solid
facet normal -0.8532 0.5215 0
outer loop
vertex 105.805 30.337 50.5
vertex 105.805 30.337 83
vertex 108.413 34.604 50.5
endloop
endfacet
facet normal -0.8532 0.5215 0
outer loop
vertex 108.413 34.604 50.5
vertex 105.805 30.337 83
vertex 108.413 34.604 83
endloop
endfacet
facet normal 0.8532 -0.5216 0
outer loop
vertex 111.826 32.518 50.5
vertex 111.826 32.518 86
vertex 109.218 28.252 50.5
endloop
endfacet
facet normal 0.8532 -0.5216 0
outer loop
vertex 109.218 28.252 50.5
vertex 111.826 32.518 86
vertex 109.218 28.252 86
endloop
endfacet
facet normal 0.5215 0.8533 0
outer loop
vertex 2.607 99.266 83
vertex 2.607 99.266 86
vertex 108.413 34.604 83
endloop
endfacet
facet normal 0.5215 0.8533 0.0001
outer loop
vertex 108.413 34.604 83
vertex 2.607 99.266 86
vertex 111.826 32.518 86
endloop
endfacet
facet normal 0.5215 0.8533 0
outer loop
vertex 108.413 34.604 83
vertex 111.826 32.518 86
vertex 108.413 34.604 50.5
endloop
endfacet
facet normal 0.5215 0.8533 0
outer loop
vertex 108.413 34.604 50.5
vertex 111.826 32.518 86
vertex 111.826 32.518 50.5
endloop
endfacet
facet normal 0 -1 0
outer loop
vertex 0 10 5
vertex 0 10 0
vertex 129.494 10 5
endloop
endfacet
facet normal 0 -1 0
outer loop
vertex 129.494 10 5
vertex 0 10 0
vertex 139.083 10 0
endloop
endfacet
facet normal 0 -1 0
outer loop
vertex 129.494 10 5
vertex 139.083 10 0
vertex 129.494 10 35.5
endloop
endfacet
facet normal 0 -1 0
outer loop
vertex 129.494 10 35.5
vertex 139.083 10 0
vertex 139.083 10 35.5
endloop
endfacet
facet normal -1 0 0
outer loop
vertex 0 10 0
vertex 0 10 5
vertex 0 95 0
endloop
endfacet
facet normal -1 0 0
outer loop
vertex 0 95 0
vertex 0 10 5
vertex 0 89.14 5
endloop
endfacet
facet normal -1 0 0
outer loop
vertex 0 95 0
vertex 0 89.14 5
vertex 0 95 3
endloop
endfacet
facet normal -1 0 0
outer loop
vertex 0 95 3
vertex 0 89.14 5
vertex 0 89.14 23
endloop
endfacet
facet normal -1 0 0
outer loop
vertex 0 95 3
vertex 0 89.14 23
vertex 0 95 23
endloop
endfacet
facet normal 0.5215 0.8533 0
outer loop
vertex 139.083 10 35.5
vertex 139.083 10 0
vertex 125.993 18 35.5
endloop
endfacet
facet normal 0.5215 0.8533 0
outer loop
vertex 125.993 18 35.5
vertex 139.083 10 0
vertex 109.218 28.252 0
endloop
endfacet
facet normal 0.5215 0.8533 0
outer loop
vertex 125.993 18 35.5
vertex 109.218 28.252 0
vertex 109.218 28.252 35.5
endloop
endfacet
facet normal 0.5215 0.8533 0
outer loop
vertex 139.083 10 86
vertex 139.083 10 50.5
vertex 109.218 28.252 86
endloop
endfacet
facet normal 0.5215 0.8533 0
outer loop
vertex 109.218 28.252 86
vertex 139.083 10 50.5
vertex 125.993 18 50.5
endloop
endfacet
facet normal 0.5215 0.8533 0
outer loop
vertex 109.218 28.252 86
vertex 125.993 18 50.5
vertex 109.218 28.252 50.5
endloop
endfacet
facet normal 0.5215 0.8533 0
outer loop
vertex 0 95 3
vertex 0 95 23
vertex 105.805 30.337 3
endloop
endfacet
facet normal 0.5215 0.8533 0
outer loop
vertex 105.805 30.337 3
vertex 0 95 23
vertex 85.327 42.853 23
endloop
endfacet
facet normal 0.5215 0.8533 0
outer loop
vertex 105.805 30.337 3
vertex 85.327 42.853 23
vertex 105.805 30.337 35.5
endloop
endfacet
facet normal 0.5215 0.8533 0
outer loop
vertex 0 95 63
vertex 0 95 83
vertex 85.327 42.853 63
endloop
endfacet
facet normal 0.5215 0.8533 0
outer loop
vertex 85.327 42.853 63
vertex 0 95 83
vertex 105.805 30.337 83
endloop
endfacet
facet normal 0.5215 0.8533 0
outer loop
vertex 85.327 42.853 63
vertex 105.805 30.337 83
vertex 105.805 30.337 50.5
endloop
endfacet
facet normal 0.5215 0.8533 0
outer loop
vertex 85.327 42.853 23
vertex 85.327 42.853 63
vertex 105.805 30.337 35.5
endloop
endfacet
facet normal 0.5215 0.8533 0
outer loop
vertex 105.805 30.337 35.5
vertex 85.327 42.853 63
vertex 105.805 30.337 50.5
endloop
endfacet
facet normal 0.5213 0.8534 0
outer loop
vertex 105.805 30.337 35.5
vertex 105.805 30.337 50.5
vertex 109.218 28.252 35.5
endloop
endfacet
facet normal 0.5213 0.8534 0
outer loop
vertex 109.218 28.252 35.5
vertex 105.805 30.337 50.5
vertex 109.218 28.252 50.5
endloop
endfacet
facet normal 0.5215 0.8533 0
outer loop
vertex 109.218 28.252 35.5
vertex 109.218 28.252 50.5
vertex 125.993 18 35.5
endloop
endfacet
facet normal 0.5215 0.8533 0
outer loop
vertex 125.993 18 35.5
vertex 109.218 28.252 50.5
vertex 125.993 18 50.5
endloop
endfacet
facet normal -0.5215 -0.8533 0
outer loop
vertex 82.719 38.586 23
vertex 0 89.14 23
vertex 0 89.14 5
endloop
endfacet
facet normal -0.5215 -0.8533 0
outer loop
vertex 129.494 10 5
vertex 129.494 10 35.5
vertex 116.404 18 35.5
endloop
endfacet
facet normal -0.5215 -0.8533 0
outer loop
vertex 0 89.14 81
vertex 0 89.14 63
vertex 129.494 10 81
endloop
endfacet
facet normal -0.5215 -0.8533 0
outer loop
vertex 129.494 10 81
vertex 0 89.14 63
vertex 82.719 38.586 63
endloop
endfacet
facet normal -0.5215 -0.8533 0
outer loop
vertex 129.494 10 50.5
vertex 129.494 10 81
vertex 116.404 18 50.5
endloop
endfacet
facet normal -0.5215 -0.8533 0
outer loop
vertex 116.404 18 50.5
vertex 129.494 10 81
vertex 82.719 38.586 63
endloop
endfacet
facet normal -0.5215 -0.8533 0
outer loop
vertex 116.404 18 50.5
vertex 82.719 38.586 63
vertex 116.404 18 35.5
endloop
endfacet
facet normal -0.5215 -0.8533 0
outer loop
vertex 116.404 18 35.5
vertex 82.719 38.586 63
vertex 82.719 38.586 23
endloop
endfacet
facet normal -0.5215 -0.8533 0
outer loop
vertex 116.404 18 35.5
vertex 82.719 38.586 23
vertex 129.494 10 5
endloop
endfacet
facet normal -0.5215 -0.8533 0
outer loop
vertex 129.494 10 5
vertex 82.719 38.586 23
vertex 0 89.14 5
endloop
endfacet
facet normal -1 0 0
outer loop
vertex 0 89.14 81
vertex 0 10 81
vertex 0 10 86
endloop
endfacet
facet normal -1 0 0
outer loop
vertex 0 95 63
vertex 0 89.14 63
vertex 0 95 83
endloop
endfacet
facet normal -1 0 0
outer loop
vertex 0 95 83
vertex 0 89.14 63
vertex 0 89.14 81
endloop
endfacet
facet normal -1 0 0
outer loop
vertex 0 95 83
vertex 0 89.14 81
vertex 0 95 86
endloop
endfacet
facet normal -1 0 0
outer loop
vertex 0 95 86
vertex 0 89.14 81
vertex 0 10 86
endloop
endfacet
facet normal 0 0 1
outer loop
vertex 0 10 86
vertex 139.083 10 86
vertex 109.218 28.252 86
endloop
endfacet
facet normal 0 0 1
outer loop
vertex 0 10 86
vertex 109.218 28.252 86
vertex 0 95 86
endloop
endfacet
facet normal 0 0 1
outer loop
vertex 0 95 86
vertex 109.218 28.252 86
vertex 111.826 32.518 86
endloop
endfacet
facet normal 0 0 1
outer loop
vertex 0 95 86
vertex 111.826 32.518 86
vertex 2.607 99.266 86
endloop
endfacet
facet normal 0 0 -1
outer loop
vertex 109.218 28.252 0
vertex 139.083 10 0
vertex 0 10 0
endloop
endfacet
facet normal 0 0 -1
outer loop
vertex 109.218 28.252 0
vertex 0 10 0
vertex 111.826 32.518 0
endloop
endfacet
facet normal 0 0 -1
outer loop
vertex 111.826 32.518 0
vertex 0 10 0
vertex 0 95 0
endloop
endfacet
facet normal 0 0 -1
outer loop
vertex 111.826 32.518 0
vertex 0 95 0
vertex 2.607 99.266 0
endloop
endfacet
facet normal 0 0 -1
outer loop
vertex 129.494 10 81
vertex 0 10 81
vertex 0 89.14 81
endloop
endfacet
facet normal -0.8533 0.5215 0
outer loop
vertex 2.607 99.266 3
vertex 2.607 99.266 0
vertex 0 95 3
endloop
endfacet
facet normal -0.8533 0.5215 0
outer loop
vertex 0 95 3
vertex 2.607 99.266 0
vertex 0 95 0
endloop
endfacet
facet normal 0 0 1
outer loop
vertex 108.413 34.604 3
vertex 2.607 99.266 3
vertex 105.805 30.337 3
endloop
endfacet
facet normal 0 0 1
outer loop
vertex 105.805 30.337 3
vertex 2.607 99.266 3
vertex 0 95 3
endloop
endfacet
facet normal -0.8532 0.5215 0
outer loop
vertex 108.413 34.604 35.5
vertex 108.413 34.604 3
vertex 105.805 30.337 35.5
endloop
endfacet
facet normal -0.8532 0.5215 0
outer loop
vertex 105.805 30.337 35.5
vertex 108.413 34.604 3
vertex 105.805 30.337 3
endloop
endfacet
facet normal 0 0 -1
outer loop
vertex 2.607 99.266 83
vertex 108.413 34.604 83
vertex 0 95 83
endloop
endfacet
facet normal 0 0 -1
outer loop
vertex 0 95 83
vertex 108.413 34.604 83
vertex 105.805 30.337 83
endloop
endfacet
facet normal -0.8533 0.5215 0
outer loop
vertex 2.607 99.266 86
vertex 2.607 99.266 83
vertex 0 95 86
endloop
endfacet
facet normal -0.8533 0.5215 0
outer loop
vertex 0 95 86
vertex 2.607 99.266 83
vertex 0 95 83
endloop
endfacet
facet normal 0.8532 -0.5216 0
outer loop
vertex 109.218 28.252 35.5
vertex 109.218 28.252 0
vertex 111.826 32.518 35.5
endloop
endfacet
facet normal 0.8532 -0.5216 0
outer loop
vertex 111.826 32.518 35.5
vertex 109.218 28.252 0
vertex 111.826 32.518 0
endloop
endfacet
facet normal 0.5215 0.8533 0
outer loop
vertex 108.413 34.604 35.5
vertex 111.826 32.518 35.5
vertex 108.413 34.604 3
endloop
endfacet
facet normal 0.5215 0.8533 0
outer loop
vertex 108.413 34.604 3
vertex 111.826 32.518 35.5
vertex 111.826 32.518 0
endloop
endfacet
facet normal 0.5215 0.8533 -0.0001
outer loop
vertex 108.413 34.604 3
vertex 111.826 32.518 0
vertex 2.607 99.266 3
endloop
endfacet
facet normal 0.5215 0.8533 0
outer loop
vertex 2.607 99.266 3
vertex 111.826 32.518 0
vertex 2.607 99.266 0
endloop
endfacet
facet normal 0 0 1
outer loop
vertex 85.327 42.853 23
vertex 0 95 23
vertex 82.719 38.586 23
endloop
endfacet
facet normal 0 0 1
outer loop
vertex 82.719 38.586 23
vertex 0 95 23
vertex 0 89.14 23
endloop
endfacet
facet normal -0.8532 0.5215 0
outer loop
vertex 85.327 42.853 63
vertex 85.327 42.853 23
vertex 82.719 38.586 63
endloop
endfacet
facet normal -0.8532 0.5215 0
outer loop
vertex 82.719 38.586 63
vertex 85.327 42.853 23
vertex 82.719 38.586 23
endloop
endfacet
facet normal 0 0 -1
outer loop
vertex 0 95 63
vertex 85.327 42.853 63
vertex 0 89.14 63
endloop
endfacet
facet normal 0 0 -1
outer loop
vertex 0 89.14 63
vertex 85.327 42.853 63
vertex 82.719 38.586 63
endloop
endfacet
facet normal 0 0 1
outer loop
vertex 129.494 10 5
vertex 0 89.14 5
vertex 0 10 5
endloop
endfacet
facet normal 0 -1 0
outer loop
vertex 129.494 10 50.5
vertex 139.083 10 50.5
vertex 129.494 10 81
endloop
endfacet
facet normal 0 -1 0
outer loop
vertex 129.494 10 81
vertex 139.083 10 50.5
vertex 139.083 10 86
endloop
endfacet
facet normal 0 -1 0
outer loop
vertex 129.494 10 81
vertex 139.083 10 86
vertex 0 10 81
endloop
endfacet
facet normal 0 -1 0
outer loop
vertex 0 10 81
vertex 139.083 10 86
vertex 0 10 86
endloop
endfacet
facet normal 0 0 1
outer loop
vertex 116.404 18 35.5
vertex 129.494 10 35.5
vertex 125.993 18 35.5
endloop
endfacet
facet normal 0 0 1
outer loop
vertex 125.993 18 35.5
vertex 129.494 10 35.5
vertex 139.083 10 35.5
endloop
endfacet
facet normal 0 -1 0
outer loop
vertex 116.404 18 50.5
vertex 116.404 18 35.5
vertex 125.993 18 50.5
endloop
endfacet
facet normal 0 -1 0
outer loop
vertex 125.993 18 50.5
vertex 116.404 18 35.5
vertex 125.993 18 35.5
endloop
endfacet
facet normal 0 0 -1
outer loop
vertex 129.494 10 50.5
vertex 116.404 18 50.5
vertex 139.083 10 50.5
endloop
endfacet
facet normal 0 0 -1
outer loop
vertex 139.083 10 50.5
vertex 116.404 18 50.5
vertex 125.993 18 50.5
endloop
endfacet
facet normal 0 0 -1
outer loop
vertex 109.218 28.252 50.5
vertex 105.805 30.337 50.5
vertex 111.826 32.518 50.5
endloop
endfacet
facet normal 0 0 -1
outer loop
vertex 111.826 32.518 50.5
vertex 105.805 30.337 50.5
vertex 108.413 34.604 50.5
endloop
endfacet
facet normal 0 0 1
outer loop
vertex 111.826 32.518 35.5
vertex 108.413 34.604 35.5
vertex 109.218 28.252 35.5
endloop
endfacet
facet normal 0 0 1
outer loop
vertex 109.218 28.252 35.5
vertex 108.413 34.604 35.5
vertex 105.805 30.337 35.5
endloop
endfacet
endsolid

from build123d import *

# Parameters (mm, degrees)
BOSS_EXTRUDE2_DEPTH = 86
BOSS_EXTRUDE3_DEPTH = 5
BOSS_EXTRUDE4_DEPTH = 5
CUT_EXTRUDE2_DEPTH  = 82.06047469
BOSS_EXTRUDE5_DEPTH = 5
CUT_EXTRUDE3_DEPTH  = 6
SKETCH8_W           = 40
SKETCH8_H           = 5.859822581
CUT_EXTRUDE4_DEPTH  = 69.214723926
SKETCH11_W          = 86
SKETCH11_H          = 10
CUT_EXTRUDE6_DEPTH  = 140.082709206
CUT_EXTRUDE8_DEPTH  = 140.082709206
SKETCH14_W          = 15
SKETCH14_H          = 5
CUT_EXTRUDE9_DEPTH  = 10


with BuildPart() as part:
    # Sketch1 → Boss-Extrude2 (new body)
    with BuildSketch(Plane.XY):
        Polygon((0, 89.140177419), (0, 95), (139.082709206, 10), (139.082709206, 0), (0, 0), (0, 5), (5, 5), (134.082709206, 5), (134.082709206, 7.195913121), (5, 86.084441718), align=None)
    extrude(amount=BOSS_EXTRUDE2_DEPTH)

    # Sketch2 → Boss-Extrude3 (add)
    with BuildSketch(Plane.XY.offset(86)):
        Polygon((0, 89.140177419), (134.082709206, 7.195913121), (134.082709206, 5), (0, 5), align=None)
    extrude(amount=-BOSS_EXTRUDE3_DEPTH)

    # Sketch3 → Boss-Extrude4 (add)
    with BuildSketch(Plane(origin=(42.270799685, 69.166321653, 0), x_dir=(0, 0, -1), z_dir=(0.521472393, 0.853268155, 0))):
        Polygon((0, 49.539877301), (0, -78.460122699), (-86, -78.460122699), (-86, 49.539877301), (-83, 49.539877301), (-83, -74.460122699), (-3, -74.460122699), (-3, 49.539877301), align=None)
    extrude(amount=BOSS_EXTRUDE4_DEPTH)

    # Sketch5 → Cut-Extrude2 (cut, through all)
    with BuildSketch(Plane(origin=(42.270799685, 69.166321653, 0), x_dir=(0, 0, -1), z_dir=(0.521472393, 0.853268155, 0))):
        Polygon((-43, 49.539877301), (-23, 49.539877301), (-23, -50.460122699), (-63, -50.460122699), (-63, 49.539877301), align=None)
    extrude(amount=-CUT_EXTRUDE2_DEPTH, mode=Mode.SUBTRACT)

    # Sketch6 → Boss-Extrude5 (add)
    with BuildSketch(Plane(origin=(0, 0, 0), x_dir=(-1, 0, 0), z_dir=(0, 0, -1))):
        Polygon((0, 89.140177419), (-134.082709206, 7.195913121), (-134.082709206, 5), (0, 5), align=None)
    extrude(amount=-BOSS_EXTRUDE5_DEPTH)

    # Sketch7 → Cut-Extrude3 (cut, through all)
    with BuildSketch(Plane(origin=(0, 5, 0), x_dir=(1, 0, 0), z_dir=(0, 1, 0))):
        Polygon((0, -5), (135.193098296, -5), (134.082709206, -81), (0, -81), (0, -63), (62.193208986, -63), (62.193208986, -23), (0, -23), align=None)
    extrude(amount=-CUT_EXTRUDE3_DEPTH, mode=Mode.SUBTRACT)

    # Sketch8 → Cut-Extrude4 (cut, through all)
    with BuildSketch(Plane(origin=(43.056015778, -26.313560917, 0), x_dir=(0, 0, 1), z_dir=(-0.853268155, 0.521472393, 0))):
        with Locations((43, 33.768470979)):
            Rectangle(SKETCH8_W, SKETCH8_H)
    extrude(amount=-CUT_EXTRUDE4_DEPTH, mode=Mode.SUBTRACT)

    # Sketch11 → Cut-Extrude6 (cut, through all)
    with BuildSketch(Plane(origin=(139.082709206, 0, 0), x_dir=(0, 0, -1), z_dir=(1, 0, 0))):
        with Locations((-43, 5)):
            Rectangle(SKETCH11_W, SKETCH11_H)
    extrude(amount=-CUT_EXTRUDE6_DEPTH, mode=Mode.SUBTRACT)

    # Sketch13 → Cut-Extrude8 (cut, through all)
    with BuildSketch(Plane.ZY):
        Polygon((43, 10), (50.5, 10), (50.5, 18), (35.5, 18), (35.5, 10), align=None)
    extrude(amount=-CUT_EXTRUDE8_DEPTH, mode=Mode.SUBTRACT)

    # Sketch14 → Cut-Extrude9 (cut)
    with BuildSketch(Plane(origin=(66.947524108, -40.914787911, 0), x_dir=(0, 0, -1), z_dir=(0.853268155, -0.521472393, 0))):
        with Locations((-43, 83.56047469)):
            Rectangle(SKETCH14_W, SKETCH14_H)
    extrude(amount=-CUT_EXTRUDE9_DEPTH, mode=Mode.SUBTRACT)


solid = part.part
